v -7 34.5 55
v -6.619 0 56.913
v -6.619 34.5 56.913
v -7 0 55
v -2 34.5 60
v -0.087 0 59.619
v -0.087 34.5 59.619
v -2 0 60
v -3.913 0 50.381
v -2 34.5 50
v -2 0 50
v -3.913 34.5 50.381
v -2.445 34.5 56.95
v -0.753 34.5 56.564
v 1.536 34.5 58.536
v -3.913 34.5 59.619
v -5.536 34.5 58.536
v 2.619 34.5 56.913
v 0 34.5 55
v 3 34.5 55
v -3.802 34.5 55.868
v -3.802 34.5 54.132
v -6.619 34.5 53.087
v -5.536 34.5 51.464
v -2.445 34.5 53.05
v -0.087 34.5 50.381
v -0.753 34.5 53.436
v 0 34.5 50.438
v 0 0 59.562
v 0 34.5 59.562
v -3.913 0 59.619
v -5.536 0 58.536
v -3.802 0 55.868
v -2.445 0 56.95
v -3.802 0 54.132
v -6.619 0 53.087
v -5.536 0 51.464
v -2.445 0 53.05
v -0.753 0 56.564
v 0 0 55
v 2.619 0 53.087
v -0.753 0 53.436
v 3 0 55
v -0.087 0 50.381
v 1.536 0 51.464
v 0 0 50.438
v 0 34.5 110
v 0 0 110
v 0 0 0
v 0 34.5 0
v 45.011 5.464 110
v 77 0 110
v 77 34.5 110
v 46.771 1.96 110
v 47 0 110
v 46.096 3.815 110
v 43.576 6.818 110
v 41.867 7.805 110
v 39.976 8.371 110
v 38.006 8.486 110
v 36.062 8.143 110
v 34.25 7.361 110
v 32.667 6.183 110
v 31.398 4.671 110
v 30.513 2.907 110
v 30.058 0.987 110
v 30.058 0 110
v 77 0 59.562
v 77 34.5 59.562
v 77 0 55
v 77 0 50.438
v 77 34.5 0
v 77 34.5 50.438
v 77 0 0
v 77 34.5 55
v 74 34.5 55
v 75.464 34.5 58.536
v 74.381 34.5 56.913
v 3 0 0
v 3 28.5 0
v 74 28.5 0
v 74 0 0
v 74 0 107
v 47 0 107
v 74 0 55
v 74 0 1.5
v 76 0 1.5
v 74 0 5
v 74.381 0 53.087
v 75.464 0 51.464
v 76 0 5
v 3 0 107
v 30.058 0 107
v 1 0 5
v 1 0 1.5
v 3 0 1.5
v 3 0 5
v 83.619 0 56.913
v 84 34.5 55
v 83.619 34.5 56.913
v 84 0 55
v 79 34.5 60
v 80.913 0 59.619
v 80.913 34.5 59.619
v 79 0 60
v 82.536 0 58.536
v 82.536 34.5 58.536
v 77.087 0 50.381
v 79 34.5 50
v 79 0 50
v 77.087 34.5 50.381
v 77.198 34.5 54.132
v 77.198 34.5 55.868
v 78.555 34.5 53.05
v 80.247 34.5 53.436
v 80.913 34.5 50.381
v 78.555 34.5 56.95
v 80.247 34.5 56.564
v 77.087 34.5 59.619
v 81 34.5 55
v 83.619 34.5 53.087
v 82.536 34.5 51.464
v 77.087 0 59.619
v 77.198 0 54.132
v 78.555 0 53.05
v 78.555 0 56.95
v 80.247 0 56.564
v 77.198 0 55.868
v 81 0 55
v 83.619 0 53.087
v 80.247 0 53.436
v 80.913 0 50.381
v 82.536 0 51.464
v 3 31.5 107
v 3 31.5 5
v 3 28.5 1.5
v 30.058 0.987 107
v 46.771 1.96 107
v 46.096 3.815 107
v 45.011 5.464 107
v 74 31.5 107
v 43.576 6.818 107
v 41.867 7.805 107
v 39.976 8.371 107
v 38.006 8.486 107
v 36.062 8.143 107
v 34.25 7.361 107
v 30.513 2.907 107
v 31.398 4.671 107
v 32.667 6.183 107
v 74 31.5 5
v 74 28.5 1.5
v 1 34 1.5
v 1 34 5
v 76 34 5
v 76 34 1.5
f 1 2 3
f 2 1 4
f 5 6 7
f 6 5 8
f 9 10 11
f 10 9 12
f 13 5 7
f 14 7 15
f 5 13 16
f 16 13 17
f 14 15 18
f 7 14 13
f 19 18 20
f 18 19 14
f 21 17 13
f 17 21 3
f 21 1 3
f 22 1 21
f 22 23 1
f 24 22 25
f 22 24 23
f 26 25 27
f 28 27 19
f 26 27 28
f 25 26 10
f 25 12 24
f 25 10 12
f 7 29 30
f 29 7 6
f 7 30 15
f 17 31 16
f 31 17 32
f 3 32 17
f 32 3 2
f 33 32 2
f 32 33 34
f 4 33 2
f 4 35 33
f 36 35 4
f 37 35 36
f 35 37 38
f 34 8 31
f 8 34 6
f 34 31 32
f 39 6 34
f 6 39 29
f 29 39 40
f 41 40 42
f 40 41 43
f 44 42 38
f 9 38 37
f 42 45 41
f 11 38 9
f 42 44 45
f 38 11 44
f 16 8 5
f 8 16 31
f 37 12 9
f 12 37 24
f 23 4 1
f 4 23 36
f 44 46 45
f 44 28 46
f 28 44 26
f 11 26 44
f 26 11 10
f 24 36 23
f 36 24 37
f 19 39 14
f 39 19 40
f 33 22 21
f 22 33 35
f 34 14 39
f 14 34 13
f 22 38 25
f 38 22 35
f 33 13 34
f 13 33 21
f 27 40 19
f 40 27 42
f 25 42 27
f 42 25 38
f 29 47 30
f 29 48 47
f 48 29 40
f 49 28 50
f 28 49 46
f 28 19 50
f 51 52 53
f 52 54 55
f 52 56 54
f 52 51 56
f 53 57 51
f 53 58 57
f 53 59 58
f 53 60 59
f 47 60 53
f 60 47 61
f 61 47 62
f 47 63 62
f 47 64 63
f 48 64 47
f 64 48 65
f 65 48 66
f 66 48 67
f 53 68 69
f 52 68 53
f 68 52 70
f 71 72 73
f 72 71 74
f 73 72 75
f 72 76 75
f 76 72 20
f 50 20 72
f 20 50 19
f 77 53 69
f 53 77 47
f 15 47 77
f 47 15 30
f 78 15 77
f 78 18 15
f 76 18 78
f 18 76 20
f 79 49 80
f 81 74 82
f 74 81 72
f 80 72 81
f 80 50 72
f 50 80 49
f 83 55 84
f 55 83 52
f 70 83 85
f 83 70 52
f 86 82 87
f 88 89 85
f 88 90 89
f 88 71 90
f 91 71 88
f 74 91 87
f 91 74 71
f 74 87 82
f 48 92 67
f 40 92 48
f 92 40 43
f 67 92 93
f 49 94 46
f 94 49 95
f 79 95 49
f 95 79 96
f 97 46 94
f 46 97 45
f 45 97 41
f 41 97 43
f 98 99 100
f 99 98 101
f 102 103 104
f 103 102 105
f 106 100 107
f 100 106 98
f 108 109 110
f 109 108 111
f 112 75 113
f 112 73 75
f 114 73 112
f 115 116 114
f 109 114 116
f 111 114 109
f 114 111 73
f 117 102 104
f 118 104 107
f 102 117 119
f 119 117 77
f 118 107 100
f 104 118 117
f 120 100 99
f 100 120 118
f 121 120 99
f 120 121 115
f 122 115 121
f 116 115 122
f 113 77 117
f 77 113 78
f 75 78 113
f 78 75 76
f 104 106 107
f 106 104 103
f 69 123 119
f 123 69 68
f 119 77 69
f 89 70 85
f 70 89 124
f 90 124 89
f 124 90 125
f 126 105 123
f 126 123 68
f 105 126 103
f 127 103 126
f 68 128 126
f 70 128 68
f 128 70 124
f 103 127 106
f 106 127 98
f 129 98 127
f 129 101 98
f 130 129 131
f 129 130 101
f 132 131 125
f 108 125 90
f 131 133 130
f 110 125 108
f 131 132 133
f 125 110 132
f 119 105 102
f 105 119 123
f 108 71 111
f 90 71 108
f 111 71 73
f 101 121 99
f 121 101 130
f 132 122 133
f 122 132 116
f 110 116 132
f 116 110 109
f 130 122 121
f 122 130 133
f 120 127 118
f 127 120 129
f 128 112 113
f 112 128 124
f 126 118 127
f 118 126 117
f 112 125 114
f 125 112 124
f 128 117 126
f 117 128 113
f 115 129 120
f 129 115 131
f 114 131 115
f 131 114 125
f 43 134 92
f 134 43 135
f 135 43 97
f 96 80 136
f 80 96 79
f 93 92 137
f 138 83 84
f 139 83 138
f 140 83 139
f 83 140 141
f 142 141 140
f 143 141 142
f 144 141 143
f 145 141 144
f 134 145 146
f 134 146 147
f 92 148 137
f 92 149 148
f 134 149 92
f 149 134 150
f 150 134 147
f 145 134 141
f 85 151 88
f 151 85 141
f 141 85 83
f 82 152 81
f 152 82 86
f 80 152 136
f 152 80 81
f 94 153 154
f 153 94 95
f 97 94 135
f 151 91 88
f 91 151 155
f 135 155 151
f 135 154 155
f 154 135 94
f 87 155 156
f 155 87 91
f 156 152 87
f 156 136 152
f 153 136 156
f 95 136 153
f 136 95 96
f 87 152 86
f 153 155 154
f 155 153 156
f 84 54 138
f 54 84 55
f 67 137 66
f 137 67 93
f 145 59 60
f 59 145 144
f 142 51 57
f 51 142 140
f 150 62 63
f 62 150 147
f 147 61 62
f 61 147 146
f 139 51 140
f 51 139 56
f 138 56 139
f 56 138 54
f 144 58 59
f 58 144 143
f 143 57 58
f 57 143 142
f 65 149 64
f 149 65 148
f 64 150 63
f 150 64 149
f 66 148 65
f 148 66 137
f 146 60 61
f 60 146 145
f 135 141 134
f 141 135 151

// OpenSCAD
difference() {
	difference() {
		difference() {
			difference() {
				union() {
					union() {
						cube(size = [77.0000000000, 34.5000000000, 110.0000000000]);
						translate(v = [-2, 0, 0]) {
							translate(v = [0, 34.5000000000, 0]) {
								translate(v = [0, 0, 55.0000000000]) {
									rotate(a = [90, 0, 0]) {
										difference() {
											cylinder(d = 10.0000000000, h = 34.5000000000);
											cylinder(d = 4, h = 34.5000000000);
										}
									}
								}
							}
						}
					}
					translate(v = [79.0000000000, 0, 0]) {
						translate(v = [0, 34.5000000000, 0]) {
							translate(v = [0, 0, 55.0000000000]) {
								rotate(a = [90, 0, 0]) {
									difference() {
										cylinder(d = 10.0000000000, h = 34.5000000000);
										cylinder(d = 4, h = 34.5000000000);
									}
								}
							}
						}
					}
				}
				translate(v = [3.0000000000, 0, 0]) {
					cube(size = [71.0000000000, 28.5000000000, 107.0000000000]);
				}
			}
			translate(v = [1.0000000000, 0, 0]) {
				translate(v = [0, 0, 1.5000000000]) {
					cube(size = [75.0000000000, 34.0000000000, 3.5000000000]);
				}
			}
		}
		translate(v = [38.5000000000, 0, 0]) {
			translate(v = [0, 0, 107.0000000000]) {
				cylinder(d = 17, h = 3.0000000000);
			}
		}
	}
	translate(v = [3.0000000000, 0, 0]) {
		translate(v = [0, 0, 5.0000000000]) {
			translate(v = [0, 28.5000000000, 0]) {
				cube(size = [71.0000000000, 3.0000000000, 102.0000000000]);
			}
		}
	}
}
/***********************************************
*********      SolidPython code:      **********
************************************************
 
import solid as s
import solid.utils as u

hole_width = 71.0
hole_height = 28.5
hole_depth = 107.0

thickness = 3.0
width = hole_width + thickness + thickness
height = hole_height + thickness + thickness
depth = hole_depth + thickness

slot_width = 75.0
slot_height = 34.0
slot_depth = 3.5
slot_back = 1.5
wire_hole_dia = 17
screw_dia = 4

body = s.cube(size=[width, height, depth])
hole = u.right(thickness)(
    s.cube(size=[hole_width, hole_height, hole_depth])
)
slot = u.right((width - slot_width) / 2)(u.up(slot_back)(
    s.cube(size=[slot_width, slot_height, slot_depth])
))
base_hole = u.right(thickness)(u.up(slot_back + slot_depth)(u.forward(hole_height)(
    s.cube(size=[hole_width, thickness, hole_depth - slot_back - slot_depth])
)))

wire_hole = u.right(width / 2)(u.up(hole_depth)(
    s.cylinder(d=wire_hole_dia, h=thickness)
))

screw_housing = u.forward(height)(u.up(depth / 2.0)(s.rotate(a=[90, 0, 0])(
    s.cylinder(d=screw_dia + thickness * 2, h=height) - 
    s.cylinder(d=screw_dia, h=height)
)))

sh1 = u.left(screw_dia / 2)(screw_housing)
sh2 = u.right(width + screw_dia / 2)(screw_housing)

final = body + sh1 + sh2 - hole - slot - wire_hole - base_hole

s.scad_render_to_file(final, __file__.replace('.py', '.scad'))
 
 
************************************************/
